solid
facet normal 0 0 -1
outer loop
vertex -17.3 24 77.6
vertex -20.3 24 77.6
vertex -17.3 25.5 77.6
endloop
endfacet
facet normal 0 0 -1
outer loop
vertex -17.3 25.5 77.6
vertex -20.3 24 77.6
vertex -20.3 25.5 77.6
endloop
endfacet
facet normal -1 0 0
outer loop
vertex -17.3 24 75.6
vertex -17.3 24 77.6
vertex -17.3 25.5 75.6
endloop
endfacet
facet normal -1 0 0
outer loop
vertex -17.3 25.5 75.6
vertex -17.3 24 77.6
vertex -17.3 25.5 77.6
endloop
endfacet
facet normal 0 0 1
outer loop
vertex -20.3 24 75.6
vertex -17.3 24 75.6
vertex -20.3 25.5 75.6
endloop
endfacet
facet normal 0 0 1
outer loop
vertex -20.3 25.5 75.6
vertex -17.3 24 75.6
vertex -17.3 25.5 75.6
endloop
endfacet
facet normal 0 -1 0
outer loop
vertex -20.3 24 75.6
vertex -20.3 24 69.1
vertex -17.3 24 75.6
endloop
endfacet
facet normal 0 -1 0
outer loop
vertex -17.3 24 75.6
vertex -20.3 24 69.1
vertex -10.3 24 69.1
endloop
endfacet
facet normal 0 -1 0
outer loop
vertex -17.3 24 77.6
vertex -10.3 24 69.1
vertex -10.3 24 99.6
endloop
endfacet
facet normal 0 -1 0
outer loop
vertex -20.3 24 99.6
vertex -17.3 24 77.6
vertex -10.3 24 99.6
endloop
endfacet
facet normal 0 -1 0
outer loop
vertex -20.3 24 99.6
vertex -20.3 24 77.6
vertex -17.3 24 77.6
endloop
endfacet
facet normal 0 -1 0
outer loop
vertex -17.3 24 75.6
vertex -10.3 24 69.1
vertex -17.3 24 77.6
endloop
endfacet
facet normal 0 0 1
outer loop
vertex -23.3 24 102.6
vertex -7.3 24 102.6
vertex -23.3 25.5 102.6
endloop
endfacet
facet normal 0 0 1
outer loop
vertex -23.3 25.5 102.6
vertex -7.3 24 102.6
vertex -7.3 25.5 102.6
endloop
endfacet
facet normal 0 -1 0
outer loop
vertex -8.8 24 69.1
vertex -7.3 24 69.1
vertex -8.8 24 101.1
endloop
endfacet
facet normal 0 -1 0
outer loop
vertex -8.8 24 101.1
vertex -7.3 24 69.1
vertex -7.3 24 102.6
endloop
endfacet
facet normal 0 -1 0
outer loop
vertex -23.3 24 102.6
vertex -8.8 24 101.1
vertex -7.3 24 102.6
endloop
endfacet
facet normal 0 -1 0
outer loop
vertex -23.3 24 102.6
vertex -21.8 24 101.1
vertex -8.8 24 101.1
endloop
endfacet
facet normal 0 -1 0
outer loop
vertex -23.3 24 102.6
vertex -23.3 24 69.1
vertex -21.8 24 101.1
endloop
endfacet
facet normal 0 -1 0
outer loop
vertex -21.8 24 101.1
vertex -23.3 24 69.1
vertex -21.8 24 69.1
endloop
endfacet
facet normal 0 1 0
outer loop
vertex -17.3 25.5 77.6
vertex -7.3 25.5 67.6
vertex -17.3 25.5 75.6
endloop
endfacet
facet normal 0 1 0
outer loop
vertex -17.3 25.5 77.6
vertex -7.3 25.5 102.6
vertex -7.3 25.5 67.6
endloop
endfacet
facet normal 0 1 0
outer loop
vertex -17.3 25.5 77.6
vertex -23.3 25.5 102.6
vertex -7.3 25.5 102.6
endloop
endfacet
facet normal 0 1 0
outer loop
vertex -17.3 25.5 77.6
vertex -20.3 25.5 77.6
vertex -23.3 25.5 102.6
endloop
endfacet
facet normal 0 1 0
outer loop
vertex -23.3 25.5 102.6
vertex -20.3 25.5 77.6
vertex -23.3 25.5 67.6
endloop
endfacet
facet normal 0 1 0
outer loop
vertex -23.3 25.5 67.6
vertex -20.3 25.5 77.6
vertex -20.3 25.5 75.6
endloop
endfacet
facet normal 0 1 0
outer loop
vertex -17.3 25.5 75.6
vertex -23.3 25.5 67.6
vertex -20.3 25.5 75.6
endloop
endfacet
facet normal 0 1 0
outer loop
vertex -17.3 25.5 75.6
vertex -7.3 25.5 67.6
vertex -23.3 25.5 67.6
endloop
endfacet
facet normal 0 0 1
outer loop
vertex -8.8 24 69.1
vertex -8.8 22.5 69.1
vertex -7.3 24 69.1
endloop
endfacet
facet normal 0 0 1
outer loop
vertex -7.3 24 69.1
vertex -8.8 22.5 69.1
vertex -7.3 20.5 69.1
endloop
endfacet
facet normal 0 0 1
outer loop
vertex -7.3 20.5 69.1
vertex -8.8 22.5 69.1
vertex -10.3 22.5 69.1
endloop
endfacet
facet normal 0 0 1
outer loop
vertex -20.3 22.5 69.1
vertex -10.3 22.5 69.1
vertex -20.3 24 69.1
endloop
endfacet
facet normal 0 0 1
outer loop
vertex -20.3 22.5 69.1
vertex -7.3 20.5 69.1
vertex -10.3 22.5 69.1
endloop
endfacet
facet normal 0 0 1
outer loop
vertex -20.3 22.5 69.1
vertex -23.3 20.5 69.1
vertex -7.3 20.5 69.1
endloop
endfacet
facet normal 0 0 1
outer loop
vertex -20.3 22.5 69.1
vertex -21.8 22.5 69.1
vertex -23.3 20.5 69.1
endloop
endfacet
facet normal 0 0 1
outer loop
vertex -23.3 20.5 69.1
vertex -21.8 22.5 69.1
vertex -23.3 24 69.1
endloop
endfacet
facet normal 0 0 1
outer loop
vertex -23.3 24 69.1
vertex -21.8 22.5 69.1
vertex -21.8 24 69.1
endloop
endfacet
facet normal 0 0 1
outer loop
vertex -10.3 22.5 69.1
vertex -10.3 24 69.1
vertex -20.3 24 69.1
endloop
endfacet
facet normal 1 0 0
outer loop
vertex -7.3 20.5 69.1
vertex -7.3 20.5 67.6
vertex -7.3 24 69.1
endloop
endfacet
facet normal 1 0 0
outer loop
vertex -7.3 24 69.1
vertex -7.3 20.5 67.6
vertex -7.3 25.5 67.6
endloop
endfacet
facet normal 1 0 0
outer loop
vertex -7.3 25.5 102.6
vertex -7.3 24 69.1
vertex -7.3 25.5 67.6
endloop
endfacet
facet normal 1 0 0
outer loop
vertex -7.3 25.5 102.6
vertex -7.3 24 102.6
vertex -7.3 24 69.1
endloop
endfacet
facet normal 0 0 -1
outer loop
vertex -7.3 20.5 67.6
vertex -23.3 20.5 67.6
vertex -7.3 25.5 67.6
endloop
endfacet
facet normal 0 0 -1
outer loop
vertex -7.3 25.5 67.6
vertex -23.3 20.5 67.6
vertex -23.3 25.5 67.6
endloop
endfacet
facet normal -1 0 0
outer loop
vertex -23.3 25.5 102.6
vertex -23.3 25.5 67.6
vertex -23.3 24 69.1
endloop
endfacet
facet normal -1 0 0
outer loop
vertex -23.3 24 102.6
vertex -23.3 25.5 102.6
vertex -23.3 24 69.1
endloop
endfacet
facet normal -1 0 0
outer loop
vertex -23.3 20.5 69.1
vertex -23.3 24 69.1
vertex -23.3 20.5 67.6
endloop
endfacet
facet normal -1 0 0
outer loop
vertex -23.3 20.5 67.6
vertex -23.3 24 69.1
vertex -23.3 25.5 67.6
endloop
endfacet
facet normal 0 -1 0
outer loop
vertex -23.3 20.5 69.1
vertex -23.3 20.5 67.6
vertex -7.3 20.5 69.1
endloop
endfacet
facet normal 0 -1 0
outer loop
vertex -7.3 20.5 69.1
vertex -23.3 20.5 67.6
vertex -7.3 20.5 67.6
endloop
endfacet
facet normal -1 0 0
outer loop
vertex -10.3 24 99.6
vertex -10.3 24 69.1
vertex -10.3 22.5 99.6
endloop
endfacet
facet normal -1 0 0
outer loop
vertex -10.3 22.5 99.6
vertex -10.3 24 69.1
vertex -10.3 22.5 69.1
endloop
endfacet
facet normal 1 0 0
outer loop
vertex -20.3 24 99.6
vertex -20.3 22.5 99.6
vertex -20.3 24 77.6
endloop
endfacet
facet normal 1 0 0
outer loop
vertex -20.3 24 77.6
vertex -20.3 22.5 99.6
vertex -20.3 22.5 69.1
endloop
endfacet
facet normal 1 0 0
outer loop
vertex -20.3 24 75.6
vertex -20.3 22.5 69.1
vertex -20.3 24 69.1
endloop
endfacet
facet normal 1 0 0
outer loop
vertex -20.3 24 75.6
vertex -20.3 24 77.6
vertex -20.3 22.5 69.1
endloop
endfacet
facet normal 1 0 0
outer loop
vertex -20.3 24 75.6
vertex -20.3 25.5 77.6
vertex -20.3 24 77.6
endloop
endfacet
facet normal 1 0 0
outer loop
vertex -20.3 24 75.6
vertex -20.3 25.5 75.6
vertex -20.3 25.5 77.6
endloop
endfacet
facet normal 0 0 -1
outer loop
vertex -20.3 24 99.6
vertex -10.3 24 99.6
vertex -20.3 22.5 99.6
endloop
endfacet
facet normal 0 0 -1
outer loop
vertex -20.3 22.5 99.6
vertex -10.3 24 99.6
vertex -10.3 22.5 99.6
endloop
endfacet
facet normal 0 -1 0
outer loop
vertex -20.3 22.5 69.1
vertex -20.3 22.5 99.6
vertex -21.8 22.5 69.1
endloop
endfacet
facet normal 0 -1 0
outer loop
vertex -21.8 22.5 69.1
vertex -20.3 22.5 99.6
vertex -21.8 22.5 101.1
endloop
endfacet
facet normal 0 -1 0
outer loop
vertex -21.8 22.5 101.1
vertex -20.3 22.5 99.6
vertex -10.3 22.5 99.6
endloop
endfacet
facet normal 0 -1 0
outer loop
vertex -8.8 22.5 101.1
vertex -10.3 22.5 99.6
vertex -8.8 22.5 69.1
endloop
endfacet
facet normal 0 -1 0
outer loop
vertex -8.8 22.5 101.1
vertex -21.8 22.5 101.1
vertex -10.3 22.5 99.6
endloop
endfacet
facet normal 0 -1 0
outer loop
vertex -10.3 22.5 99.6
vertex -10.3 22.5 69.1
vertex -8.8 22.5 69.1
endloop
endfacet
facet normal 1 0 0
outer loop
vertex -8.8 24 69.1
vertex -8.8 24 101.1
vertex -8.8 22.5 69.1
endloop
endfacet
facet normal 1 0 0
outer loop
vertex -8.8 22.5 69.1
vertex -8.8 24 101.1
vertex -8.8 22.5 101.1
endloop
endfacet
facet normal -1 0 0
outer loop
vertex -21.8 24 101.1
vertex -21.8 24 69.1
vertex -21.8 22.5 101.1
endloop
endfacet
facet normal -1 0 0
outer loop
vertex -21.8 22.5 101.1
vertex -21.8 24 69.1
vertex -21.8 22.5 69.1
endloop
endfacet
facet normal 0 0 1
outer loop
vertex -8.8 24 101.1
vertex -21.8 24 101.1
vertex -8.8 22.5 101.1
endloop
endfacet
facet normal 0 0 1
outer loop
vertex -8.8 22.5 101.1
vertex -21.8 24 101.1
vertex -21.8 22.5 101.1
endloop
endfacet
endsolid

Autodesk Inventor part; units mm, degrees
ref_plane "YZ Plane" through (0, 0, 0) normal (1, 0, 0) x (0, 1, 0)
ref_plane "XZ Plane" through (0, 0, 0) normal (0, 1, 0) x (-1, 0, 0)
ref_plane "XY Plane" through (0, 0, 0) normal (0, 0, 1) x (1, 0, 0)
ref_plane "Płaszczyzna konstrukcyjna1" through (0, 19, 0) normal (0, 1, 0) x (1, 0, 0)
ref_plane "Płaszczyzna konstrukcyjna3" through (0, 19, 0) normal (0, 1, 0) x (1, 0, 0)
ref_plane "Płaszczyzna konstrukcyjna2" through (0, 24, 0) normal (0, 1, 0) x (1, 0, 0)
sketch "Szkic23" plane through (0, 24, 0) normal (0, 1, 0) x (1, 0, 0)
  line L0 (-21.8, -101.1) -> (-21.8, -97.6) projected
  line L1 (-8.8, -67.6) -> (-8.8, -69.1) projected
  line L2 (-21.8, -101.1) -> (-8.8, -101.1)
  line L3 (-8.8, -101.1) -> (-8.8, -69.1)
  line L4 (-8.8, -69.1) -> (-21.8, -69.1)
  line L5 (-21.8, -69.1) -> (-21.8, -101.1)
  line L6 (-21.8, -101.1) -> (-20.3, -101.1) construction
  line L7 (-20.3, -101.1) -> (-20.3, -99.6) construction
  line L8 (-20.3, -99.6) -> (-21.8, -99.6) construction
  line L9 (-21.8, -99.6) -> (-21.8, -101.1) construction
  line L10 (-8.8, -69.1) -> (-10.3, -69.1) construction
  line L11 (-21.8, -69.1) -> (-8.8, -69.1) construction
  line L12 (-20.3, -99.6) -> (-10.3, -99.6)
  line L13 (-10.3, -99.6) -> (-10.3, -69.1)
  line L14 (-10.3, -69.1) -> (-20.3, -69.1)
  line L15 (-20.3, -69.1) -> (-20.3, -99.6)
  point P0 (0, 0)
  dimension "d135" = 1.5
  dimension "d136" = 1.5
  dimension "d137" = 1.5
extrude "Wyciągnięcie proste21" add sketch "Szkic23" against normal blind 1.5 contours L0 L5 L4 L15 L12 L13 L3 L2
ref_plane "Płaszczyzna konstrukcyjna5" through (0, 24, 0) normal (0, 1, 0) x (1, 0, 0)
sketch "Szkic24" plane through (0, 24, 0) normal (0, 1, 0) x (1, 0, 0)
  line L0 (-23.3, -69.1) -> (-23.3, -102.6) projected
  line L1 (-23.3, -69.1) -> (-7.3, -69.1)
  line L2 (-7.3, -69.1) -> (-7.3, -67.6)
  line L3 (-7.3, -67.6) -> (-23.3, -67.6)
  line L4 (-23.3, -67.6) -> (-23.3, -69.1)
  point P0 (0, 0)
  dimension "d140" = 16
  dimension "d141" = 1.5
extrude "Wyciągnięcie proste22" add sketch "Szkic24" against normal blind 3.5
ref_plane "Płaszczyzna konstrukcyjna6" through (0, 24, 0) normal (0, 1, 0) x (1, 0, 0)
sketch "Szkic25" plane through (0, 24, 0) normal (0, 1, 0) x (1, 0, 0)
  line L0 (-7.3, -102.6) -> (-7.3, -69.1) projected
  line L1 (-23.3, -69.1) -> (-23.3, -67.6) projected
  line L2 (-7.3, -102.6) -> (-23.3, -102.6)
  line L3 (-23.3, -102.6) -> (-23.3, -67.6)
  line L4 (-23.3, -67.6) -> (-7.3, -67.6)
  line L5 (-7.3, -67.6) -> (-7.3, -102.6)
  point P0 (0, 0)
extrude "Wyciągnięcie proste23" add sketch "Szkic25" along normal blind 1.5
ref_plane "Płaszczyzna konstrukcyjna4" through (0, 20.5, 0) normal (0, 1, 0) x (1, 0, 0)
sketch "Szkic27" plane through (0, 25.5, 0) normal (0, 1, 0) x (1, 0, 0)
  line L0 (-23.3, -67.6) -> (-23.3, -102.6) construction
  line L1 (-23.3, -102.6) -> (-23.3, -77.6) construction
  line L2 (-23.3, -77.6) -> (-23.3, -75.6) construction
  line L3 (-23.3, -77.6) -> (-20.3, -77.6) construction
  line L4 (-23.3, -75.6) -> (-17.3, -75.6) construction
  line L5 (-20.3, -77.6) -> (-17.3, -77.6)
  line L6 (-17.3, -77.6) -> (-17.3, -75.6)
  line L7 (-17.3, -75.6) -> (-20.3, -75.6)
  line L8 (-20.3, -75.6) -> (-20.3, -77.6)
  point P0 (0, 0)
  dimension "d152" = 25
  dimension "d153" = 2
  dimension "d154" = 3
  dimension "d155" = 6
extrude "Wyciągnięcie proste25" cut sketch "Szkic27" against normal blind 10
properties part number "goraczesc1zotworem"
